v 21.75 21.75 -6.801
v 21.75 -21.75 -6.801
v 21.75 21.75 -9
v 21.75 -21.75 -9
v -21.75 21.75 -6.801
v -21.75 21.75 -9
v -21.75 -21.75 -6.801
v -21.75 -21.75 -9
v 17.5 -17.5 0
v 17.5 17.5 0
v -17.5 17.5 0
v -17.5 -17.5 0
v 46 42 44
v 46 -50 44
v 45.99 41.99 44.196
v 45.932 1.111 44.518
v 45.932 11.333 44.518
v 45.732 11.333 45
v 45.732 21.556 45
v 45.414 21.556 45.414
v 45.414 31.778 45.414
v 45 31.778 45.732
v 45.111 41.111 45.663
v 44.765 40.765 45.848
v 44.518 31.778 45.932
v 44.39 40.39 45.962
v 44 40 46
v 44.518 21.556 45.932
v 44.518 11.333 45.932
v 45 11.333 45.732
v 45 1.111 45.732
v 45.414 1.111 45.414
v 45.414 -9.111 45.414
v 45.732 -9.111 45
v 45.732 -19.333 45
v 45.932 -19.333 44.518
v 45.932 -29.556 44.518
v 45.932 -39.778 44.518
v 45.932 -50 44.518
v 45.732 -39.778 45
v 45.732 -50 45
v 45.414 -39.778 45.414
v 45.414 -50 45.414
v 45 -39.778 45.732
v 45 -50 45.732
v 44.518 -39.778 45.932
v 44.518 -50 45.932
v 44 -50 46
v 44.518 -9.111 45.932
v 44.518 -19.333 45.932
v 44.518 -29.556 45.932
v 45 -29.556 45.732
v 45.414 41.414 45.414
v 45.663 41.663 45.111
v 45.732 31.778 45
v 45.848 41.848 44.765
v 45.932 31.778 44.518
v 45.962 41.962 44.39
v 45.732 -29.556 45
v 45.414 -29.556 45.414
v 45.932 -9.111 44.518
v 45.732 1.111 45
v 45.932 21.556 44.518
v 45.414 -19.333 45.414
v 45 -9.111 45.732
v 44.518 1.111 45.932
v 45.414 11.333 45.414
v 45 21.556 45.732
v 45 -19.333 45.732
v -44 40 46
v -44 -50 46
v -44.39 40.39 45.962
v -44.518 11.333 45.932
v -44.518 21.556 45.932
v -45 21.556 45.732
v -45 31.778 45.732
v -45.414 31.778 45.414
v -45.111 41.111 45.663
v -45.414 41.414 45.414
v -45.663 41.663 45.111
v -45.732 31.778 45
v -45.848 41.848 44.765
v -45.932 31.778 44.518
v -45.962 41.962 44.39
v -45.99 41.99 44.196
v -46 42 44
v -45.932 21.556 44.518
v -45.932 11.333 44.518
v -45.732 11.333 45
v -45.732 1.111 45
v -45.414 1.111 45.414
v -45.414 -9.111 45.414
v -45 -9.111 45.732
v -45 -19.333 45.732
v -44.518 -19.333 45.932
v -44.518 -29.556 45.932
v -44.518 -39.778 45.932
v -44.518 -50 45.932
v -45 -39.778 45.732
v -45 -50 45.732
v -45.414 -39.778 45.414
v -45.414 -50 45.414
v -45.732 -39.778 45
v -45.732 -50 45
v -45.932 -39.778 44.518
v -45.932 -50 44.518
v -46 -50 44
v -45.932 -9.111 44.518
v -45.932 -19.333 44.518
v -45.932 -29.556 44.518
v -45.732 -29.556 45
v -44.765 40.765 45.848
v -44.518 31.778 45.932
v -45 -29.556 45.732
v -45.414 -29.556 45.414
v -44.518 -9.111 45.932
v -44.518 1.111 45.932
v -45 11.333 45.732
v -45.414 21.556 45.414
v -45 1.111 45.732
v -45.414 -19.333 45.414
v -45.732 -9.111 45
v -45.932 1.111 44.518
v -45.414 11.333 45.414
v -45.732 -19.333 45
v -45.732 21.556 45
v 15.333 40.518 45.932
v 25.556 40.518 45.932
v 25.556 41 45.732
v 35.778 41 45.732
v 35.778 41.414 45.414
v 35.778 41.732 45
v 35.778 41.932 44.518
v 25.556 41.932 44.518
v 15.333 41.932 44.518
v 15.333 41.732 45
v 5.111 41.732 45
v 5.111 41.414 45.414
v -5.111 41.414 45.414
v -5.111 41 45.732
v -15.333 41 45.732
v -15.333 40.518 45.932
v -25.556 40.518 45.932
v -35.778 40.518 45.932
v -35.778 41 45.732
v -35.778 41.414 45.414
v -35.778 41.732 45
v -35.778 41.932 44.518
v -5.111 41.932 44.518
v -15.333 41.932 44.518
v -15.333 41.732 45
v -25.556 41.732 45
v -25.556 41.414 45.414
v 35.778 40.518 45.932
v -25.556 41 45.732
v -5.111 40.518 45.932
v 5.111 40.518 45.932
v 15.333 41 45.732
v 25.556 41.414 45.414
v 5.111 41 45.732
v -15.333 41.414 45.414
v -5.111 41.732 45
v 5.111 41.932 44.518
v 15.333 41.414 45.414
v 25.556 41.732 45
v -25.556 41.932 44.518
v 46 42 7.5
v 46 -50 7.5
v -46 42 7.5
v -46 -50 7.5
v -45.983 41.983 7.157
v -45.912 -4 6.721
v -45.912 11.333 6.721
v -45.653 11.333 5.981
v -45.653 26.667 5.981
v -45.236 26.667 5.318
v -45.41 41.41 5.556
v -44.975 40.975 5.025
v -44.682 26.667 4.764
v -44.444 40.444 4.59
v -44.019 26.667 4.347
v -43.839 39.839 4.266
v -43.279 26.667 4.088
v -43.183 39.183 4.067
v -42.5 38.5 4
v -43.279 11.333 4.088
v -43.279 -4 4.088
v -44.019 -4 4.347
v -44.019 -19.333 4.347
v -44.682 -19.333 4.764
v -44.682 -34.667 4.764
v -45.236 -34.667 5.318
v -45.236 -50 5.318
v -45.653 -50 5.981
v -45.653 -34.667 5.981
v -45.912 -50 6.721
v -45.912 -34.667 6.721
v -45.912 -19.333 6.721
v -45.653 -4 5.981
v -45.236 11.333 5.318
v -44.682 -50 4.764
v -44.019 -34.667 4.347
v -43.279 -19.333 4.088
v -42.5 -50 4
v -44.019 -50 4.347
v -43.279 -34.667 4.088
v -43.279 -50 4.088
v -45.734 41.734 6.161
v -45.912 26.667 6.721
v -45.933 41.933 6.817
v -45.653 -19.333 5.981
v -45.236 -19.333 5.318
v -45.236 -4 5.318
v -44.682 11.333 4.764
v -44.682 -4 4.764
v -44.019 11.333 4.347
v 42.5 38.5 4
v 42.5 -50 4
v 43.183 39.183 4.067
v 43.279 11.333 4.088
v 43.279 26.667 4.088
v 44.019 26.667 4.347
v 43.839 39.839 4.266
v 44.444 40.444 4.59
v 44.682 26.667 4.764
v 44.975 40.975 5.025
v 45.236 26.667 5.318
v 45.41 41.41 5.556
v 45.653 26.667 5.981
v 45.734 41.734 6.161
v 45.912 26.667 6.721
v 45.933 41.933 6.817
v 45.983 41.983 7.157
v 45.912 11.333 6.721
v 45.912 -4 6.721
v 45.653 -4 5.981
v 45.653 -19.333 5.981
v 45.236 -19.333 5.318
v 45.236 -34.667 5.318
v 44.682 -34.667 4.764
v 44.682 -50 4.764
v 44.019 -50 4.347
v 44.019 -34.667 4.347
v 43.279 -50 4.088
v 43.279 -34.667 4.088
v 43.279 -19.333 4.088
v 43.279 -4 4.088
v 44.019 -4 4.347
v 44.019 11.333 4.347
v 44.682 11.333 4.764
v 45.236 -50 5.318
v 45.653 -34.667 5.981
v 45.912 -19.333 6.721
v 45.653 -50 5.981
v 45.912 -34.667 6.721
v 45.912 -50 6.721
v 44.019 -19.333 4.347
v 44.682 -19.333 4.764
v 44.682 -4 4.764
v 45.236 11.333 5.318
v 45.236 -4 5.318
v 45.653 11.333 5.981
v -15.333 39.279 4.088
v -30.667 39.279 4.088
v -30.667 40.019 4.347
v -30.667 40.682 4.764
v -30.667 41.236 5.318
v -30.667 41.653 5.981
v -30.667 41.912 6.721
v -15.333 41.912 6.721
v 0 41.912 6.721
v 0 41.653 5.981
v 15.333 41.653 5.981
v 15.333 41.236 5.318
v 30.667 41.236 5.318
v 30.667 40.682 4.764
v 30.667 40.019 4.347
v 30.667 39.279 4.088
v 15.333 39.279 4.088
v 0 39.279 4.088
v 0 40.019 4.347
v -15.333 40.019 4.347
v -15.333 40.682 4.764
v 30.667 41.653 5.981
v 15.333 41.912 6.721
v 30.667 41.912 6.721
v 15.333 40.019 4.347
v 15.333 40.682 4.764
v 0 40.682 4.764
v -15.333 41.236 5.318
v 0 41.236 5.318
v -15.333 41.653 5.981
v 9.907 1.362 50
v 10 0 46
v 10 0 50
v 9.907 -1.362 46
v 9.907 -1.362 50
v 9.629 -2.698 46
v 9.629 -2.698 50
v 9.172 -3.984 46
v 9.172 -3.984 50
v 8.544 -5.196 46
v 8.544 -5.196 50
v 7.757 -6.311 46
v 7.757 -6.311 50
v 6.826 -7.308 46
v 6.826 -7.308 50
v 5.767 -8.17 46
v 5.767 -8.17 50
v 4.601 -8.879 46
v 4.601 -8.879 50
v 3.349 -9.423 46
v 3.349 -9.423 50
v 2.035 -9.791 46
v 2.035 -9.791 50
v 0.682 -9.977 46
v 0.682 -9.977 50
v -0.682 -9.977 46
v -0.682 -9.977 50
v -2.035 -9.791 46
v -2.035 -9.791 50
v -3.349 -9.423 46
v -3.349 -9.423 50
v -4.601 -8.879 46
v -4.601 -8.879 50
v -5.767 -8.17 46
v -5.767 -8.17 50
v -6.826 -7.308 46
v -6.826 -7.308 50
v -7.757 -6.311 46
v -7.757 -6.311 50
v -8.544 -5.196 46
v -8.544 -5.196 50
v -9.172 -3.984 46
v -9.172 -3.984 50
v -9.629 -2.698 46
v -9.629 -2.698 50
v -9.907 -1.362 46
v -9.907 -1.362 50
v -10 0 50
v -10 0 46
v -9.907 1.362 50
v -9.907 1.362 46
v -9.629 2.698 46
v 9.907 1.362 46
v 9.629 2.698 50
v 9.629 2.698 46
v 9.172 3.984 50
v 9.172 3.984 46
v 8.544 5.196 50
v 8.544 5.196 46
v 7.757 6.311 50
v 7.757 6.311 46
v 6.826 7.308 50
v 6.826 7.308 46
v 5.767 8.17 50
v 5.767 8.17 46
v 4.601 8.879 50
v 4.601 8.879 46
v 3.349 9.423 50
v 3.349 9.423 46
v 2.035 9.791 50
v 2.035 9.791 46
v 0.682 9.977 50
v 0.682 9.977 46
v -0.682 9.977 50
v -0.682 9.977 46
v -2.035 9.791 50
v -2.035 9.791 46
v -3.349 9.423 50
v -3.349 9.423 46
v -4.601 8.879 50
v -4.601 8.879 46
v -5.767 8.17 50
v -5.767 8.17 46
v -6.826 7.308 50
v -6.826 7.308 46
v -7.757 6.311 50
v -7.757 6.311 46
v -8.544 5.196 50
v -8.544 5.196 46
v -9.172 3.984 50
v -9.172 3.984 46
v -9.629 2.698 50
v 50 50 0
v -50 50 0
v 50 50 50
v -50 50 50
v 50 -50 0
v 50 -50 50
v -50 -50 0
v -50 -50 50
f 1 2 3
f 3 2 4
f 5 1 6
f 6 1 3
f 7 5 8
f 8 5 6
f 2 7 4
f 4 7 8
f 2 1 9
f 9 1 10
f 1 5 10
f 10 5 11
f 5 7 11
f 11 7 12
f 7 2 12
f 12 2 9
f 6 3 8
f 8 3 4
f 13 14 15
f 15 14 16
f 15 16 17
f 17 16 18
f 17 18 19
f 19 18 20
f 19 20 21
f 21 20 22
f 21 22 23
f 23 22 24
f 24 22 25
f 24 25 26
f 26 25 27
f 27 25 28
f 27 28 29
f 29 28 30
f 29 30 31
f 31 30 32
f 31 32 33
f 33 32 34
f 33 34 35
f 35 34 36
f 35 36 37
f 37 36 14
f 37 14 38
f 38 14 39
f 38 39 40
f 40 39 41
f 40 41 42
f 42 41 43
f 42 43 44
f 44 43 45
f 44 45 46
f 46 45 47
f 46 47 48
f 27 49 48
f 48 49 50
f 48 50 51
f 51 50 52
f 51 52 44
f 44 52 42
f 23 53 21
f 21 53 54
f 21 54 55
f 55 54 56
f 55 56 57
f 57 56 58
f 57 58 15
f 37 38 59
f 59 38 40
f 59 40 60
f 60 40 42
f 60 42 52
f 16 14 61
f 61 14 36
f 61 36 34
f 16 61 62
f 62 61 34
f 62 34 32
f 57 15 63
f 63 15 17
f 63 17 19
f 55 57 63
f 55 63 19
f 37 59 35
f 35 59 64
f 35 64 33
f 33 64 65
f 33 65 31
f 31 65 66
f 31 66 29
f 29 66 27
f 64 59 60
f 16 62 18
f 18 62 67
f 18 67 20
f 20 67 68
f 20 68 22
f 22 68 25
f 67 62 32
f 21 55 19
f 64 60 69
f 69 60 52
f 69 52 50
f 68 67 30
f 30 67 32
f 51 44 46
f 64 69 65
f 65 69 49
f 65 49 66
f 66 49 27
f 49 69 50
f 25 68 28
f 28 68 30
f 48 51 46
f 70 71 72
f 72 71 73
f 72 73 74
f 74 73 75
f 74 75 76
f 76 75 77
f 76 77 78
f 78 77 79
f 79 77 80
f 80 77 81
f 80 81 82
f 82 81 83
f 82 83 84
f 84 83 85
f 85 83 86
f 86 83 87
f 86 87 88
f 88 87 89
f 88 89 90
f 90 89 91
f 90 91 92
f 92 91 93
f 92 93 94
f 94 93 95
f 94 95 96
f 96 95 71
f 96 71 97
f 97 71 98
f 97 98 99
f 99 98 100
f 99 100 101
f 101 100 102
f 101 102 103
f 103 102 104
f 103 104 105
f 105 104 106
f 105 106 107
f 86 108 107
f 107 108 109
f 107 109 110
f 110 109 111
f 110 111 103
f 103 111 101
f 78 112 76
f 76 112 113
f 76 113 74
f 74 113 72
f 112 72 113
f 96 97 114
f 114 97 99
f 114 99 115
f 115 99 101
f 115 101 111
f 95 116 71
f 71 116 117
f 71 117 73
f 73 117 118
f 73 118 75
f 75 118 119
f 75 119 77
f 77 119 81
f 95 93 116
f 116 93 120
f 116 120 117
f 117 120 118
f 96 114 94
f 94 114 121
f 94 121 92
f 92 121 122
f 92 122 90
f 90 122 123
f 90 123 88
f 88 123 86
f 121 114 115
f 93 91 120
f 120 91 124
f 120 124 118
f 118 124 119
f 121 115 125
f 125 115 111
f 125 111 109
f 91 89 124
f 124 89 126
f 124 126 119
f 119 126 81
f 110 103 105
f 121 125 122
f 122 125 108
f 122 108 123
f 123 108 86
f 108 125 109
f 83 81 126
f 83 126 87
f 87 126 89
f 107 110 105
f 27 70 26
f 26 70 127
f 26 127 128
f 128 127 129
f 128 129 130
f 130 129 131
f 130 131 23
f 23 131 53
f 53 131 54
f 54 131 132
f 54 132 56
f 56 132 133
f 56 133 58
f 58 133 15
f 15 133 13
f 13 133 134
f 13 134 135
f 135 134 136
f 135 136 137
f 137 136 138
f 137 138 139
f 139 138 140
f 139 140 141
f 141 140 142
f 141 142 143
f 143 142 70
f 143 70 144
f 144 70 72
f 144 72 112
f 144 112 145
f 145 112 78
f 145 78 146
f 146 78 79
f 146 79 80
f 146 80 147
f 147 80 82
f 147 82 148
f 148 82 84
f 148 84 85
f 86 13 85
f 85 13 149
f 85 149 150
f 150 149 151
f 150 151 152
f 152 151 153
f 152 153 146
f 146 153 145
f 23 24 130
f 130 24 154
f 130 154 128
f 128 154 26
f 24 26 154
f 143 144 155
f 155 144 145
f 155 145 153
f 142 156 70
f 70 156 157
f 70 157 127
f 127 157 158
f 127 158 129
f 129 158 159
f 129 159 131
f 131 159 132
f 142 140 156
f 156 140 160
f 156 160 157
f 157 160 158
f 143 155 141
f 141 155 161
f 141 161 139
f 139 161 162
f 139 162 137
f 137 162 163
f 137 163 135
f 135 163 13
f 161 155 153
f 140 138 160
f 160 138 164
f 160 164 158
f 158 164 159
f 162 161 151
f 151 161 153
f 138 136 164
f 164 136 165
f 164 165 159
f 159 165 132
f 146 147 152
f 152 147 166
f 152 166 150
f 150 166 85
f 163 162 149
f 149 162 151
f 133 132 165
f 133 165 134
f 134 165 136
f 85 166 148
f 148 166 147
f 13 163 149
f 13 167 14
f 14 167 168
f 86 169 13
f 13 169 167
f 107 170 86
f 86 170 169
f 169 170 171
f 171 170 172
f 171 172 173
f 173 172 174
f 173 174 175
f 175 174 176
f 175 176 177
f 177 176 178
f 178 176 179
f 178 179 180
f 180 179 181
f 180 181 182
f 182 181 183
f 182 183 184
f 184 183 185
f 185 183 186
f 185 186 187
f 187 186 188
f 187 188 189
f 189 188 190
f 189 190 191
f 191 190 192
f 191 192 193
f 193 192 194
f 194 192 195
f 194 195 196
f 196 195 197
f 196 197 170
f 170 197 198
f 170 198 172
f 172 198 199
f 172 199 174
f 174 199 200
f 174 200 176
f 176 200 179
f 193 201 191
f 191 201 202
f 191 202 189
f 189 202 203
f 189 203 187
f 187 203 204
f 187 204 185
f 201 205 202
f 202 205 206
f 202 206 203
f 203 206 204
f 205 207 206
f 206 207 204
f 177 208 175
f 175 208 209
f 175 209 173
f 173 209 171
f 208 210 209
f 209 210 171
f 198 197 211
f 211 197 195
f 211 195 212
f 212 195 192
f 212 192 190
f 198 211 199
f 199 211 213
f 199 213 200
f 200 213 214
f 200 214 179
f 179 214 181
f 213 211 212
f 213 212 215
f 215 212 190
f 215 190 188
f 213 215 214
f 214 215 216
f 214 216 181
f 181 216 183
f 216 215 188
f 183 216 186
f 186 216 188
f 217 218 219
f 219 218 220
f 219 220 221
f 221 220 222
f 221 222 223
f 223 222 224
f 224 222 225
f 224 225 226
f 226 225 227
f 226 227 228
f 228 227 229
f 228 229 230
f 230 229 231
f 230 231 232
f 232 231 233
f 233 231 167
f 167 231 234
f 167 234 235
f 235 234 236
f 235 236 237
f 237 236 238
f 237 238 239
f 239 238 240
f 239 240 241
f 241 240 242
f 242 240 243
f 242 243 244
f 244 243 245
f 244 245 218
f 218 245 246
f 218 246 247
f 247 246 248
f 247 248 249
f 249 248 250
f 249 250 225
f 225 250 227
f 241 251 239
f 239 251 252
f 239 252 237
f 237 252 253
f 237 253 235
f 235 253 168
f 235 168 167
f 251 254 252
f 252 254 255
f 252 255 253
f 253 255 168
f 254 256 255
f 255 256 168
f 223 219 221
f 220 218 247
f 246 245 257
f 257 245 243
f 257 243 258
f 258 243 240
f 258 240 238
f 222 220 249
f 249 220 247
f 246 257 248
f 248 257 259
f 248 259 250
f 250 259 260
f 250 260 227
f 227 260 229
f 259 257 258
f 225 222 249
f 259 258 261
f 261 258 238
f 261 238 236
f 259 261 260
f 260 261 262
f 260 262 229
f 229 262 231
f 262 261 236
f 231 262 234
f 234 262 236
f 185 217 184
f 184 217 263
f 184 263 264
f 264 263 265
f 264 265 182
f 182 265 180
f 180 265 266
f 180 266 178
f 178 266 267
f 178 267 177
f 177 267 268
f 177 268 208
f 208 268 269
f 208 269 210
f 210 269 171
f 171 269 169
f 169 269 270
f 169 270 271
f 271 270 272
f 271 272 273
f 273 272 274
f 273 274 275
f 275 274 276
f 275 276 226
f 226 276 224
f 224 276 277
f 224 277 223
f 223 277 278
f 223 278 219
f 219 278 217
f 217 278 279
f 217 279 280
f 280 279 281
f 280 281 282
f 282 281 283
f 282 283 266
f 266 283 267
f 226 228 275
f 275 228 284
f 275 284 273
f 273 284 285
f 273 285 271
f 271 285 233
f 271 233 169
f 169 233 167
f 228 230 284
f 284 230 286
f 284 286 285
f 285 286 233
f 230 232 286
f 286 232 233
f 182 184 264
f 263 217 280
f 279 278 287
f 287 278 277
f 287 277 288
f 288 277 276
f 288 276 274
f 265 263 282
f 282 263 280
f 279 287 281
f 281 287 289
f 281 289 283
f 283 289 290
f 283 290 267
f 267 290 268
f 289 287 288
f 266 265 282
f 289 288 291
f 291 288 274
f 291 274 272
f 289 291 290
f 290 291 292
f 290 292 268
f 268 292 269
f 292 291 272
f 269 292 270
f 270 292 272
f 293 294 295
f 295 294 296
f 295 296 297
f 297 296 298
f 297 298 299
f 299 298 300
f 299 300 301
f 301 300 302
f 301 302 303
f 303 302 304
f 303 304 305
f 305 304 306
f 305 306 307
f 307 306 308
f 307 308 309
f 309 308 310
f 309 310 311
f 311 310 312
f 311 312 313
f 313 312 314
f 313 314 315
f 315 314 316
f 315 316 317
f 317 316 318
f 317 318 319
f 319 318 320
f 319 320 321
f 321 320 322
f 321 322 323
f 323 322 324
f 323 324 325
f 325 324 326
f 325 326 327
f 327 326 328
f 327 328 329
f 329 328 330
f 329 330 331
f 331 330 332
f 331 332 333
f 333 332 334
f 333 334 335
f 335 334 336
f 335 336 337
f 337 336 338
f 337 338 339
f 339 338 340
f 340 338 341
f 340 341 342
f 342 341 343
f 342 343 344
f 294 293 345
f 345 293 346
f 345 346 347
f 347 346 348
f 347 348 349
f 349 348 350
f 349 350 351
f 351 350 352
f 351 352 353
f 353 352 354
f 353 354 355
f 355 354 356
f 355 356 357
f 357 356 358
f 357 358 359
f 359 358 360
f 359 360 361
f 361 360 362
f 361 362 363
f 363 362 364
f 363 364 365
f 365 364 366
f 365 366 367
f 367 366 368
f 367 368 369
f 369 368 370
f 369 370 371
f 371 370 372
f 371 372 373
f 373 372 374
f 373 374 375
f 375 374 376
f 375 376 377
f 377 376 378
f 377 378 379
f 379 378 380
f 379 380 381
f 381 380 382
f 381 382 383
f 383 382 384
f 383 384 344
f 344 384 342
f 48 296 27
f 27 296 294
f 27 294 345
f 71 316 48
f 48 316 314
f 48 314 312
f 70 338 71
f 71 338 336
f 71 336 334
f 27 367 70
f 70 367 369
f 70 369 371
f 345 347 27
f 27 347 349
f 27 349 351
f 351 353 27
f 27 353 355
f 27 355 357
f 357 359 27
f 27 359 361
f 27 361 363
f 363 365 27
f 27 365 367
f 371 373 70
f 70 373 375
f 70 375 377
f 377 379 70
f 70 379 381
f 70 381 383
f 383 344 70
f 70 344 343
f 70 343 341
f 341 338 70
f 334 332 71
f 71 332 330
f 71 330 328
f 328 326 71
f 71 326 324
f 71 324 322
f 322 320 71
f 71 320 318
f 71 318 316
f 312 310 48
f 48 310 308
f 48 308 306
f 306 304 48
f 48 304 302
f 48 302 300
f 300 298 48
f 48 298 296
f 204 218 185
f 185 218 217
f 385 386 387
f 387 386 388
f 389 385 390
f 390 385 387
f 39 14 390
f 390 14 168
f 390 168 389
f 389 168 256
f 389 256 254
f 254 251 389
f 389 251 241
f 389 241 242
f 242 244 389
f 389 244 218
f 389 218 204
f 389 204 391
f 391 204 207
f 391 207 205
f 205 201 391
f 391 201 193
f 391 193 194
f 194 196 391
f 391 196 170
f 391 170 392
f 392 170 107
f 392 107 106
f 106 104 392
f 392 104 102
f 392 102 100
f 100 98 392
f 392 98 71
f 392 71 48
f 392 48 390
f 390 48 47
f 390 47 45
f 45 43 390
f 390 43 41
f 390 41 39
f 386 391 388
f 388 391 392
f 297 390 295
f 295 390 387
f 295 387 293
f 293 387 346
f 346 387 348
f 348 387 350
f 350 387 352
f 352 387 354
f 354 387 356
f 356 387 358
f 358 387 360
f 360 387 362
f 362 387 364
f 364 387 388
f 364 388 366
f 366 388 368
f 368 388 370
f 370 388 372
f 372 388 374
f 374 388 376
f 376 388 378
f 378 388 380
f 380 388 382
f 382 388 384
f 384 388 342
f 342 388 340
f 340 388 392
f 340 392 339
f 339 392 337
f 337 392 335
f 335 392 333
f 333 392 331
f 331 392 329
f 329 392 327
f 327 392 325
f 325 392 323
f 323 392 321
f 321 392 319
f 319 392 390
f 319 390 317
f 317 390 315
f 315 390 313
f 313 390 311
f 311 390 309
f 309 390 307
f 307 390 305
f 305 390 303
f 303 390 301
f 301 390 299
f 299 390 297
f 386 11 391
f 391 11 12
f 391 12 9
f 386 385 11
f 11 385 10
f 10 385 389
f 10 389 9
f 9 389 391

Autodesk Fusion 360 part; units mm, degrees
sketch "Sketch1" plane through (0, 0, 0) normal (0, 0, 1) x (1, 0, 0)
  line L0 (-50, -50) -> (50, -50)
  line L1 (50, -50) -> (50, 50)
  line L2 (50, 50) -> (-50, 50)
  line L3 (-50, 50) -> (-50, -50)
  dimension "d1" = 100
  dimension "d2" = 100
  dimension "d3" = 50
  dimension "d4" = 50
extrude "Extrude1" add sketch "Sketch1" along normal blind 50
sketch "Sketch2" plane through (0, -50, 0) normal (0, -1, 0) x (1, 0, 0)
  line L0 (-50, 0) -> (50, 0)
  line L1 (50, 0) -> (50, 50)
  line L2 (50, 50) -> (-50, 50)
  line L3 (-50, 50) -> (-50, 0)
  line L4 (-46, 46) -> (46, 46)
  line L5 (46, 46) -> (46, 4)
  line L6 (46, 4) -> (-46, 4)
  line L7 (-46, 4) -> (-46, 46)
  dimension "d7" = 92
  dimension "d8" = 46
  dimension "d10" = 4
  dimension "d58" = 4
extrude "Extrude2" cut sketch "Sketch2" against normal blind 92 contours L4 L5 L6 L7
sketch "Sketch4" plane through (0, 0, 50) normal (0, 0, 1) x (-1, 0, 0)
  line L0 (50, -50) -> (50, 50)
  line L1 (50, 50) -> (-50, 50)
  line L2 (-50, 50) -> (-50, -50)
  line L3 (-50, -50) -> (50, -50)
  circle A0 centre (0, 0) radius 6
  dimension "d23" = 12
hole "Hole1" at (0, 0, 50) direction (0, 0, -1) diameter 20 depth 4 tip angle 118
fillet "Fillet2" radius 3.5 3 edges at (0, 42, 4) (-46, -4, 4) (46, -4, 4)
fillet "Fillet4" radius 2 3 edges at (-46, -4, 46) (0, 42, 46) (46, -4, 46)
sketch "Sketch10" plane through (0, 0, 0) normal (0, 0, -1) x (1, 0, 0)
  line L0 (-50, 50) -> (-50, -50)
  line L1 (-50, -50) -> (50, -50)
  line L2 (50, -50) -> (50, 50)
  line L3 (50, 50) -> (-50, 50)
  line L4 (-17.5, 17.5) -> (17.5, 17.5)
  line L5 (17.5, 17.5) -> (17.5, -17.5)
  line L6 (17.5, -17.5) -> (-17.5, -17.5)
  line L7 (-17.5, -17.5) -> (-17.5, 17.5)
  dimension "d105" = 35
  dimension "d106" = 35
  dimension "d107" = 17.5
  dimension "d108" = 17.5
extrude "Extrude8" add sketch "Sketch10" along normal blind 9 draft 32 contours L4 L5 L6 L7
sketch "Sketch12" plane through (0, 0, -9) normal (0, 0, -1) x (1, 0, 0)
  line L0 (-23.1238, 23.1238) -> (-23.1238, -23.1238)
  line L1 (-23.1238, -23.1238) -> (23.1238, -23.1238)
  line L2 (23.1238, -23.1238) -> (23.1238, 23.1238)
  line L3 (23.1238, 23.1238) -> (-23.1238, 23.1238)
  line L4 (-21.75, 21.75) -> (21.75, 21.75)
  line L5 (21.75, 21.75) -> (21.75, -21.75)
  line L6 (21.75, -21.75) -> (-21.75, -21.75)
  line L7 (-21.75, -21.75) -> (-21.75, 21.75)
  dimension "d111" = 43.5
  dimension "d112" = 43.5
  dimension "d113" = 21.75
  dimension "d114" = 21.75
extrude "Extrude9" cut sketch "Sketch12" against normal blind 9
